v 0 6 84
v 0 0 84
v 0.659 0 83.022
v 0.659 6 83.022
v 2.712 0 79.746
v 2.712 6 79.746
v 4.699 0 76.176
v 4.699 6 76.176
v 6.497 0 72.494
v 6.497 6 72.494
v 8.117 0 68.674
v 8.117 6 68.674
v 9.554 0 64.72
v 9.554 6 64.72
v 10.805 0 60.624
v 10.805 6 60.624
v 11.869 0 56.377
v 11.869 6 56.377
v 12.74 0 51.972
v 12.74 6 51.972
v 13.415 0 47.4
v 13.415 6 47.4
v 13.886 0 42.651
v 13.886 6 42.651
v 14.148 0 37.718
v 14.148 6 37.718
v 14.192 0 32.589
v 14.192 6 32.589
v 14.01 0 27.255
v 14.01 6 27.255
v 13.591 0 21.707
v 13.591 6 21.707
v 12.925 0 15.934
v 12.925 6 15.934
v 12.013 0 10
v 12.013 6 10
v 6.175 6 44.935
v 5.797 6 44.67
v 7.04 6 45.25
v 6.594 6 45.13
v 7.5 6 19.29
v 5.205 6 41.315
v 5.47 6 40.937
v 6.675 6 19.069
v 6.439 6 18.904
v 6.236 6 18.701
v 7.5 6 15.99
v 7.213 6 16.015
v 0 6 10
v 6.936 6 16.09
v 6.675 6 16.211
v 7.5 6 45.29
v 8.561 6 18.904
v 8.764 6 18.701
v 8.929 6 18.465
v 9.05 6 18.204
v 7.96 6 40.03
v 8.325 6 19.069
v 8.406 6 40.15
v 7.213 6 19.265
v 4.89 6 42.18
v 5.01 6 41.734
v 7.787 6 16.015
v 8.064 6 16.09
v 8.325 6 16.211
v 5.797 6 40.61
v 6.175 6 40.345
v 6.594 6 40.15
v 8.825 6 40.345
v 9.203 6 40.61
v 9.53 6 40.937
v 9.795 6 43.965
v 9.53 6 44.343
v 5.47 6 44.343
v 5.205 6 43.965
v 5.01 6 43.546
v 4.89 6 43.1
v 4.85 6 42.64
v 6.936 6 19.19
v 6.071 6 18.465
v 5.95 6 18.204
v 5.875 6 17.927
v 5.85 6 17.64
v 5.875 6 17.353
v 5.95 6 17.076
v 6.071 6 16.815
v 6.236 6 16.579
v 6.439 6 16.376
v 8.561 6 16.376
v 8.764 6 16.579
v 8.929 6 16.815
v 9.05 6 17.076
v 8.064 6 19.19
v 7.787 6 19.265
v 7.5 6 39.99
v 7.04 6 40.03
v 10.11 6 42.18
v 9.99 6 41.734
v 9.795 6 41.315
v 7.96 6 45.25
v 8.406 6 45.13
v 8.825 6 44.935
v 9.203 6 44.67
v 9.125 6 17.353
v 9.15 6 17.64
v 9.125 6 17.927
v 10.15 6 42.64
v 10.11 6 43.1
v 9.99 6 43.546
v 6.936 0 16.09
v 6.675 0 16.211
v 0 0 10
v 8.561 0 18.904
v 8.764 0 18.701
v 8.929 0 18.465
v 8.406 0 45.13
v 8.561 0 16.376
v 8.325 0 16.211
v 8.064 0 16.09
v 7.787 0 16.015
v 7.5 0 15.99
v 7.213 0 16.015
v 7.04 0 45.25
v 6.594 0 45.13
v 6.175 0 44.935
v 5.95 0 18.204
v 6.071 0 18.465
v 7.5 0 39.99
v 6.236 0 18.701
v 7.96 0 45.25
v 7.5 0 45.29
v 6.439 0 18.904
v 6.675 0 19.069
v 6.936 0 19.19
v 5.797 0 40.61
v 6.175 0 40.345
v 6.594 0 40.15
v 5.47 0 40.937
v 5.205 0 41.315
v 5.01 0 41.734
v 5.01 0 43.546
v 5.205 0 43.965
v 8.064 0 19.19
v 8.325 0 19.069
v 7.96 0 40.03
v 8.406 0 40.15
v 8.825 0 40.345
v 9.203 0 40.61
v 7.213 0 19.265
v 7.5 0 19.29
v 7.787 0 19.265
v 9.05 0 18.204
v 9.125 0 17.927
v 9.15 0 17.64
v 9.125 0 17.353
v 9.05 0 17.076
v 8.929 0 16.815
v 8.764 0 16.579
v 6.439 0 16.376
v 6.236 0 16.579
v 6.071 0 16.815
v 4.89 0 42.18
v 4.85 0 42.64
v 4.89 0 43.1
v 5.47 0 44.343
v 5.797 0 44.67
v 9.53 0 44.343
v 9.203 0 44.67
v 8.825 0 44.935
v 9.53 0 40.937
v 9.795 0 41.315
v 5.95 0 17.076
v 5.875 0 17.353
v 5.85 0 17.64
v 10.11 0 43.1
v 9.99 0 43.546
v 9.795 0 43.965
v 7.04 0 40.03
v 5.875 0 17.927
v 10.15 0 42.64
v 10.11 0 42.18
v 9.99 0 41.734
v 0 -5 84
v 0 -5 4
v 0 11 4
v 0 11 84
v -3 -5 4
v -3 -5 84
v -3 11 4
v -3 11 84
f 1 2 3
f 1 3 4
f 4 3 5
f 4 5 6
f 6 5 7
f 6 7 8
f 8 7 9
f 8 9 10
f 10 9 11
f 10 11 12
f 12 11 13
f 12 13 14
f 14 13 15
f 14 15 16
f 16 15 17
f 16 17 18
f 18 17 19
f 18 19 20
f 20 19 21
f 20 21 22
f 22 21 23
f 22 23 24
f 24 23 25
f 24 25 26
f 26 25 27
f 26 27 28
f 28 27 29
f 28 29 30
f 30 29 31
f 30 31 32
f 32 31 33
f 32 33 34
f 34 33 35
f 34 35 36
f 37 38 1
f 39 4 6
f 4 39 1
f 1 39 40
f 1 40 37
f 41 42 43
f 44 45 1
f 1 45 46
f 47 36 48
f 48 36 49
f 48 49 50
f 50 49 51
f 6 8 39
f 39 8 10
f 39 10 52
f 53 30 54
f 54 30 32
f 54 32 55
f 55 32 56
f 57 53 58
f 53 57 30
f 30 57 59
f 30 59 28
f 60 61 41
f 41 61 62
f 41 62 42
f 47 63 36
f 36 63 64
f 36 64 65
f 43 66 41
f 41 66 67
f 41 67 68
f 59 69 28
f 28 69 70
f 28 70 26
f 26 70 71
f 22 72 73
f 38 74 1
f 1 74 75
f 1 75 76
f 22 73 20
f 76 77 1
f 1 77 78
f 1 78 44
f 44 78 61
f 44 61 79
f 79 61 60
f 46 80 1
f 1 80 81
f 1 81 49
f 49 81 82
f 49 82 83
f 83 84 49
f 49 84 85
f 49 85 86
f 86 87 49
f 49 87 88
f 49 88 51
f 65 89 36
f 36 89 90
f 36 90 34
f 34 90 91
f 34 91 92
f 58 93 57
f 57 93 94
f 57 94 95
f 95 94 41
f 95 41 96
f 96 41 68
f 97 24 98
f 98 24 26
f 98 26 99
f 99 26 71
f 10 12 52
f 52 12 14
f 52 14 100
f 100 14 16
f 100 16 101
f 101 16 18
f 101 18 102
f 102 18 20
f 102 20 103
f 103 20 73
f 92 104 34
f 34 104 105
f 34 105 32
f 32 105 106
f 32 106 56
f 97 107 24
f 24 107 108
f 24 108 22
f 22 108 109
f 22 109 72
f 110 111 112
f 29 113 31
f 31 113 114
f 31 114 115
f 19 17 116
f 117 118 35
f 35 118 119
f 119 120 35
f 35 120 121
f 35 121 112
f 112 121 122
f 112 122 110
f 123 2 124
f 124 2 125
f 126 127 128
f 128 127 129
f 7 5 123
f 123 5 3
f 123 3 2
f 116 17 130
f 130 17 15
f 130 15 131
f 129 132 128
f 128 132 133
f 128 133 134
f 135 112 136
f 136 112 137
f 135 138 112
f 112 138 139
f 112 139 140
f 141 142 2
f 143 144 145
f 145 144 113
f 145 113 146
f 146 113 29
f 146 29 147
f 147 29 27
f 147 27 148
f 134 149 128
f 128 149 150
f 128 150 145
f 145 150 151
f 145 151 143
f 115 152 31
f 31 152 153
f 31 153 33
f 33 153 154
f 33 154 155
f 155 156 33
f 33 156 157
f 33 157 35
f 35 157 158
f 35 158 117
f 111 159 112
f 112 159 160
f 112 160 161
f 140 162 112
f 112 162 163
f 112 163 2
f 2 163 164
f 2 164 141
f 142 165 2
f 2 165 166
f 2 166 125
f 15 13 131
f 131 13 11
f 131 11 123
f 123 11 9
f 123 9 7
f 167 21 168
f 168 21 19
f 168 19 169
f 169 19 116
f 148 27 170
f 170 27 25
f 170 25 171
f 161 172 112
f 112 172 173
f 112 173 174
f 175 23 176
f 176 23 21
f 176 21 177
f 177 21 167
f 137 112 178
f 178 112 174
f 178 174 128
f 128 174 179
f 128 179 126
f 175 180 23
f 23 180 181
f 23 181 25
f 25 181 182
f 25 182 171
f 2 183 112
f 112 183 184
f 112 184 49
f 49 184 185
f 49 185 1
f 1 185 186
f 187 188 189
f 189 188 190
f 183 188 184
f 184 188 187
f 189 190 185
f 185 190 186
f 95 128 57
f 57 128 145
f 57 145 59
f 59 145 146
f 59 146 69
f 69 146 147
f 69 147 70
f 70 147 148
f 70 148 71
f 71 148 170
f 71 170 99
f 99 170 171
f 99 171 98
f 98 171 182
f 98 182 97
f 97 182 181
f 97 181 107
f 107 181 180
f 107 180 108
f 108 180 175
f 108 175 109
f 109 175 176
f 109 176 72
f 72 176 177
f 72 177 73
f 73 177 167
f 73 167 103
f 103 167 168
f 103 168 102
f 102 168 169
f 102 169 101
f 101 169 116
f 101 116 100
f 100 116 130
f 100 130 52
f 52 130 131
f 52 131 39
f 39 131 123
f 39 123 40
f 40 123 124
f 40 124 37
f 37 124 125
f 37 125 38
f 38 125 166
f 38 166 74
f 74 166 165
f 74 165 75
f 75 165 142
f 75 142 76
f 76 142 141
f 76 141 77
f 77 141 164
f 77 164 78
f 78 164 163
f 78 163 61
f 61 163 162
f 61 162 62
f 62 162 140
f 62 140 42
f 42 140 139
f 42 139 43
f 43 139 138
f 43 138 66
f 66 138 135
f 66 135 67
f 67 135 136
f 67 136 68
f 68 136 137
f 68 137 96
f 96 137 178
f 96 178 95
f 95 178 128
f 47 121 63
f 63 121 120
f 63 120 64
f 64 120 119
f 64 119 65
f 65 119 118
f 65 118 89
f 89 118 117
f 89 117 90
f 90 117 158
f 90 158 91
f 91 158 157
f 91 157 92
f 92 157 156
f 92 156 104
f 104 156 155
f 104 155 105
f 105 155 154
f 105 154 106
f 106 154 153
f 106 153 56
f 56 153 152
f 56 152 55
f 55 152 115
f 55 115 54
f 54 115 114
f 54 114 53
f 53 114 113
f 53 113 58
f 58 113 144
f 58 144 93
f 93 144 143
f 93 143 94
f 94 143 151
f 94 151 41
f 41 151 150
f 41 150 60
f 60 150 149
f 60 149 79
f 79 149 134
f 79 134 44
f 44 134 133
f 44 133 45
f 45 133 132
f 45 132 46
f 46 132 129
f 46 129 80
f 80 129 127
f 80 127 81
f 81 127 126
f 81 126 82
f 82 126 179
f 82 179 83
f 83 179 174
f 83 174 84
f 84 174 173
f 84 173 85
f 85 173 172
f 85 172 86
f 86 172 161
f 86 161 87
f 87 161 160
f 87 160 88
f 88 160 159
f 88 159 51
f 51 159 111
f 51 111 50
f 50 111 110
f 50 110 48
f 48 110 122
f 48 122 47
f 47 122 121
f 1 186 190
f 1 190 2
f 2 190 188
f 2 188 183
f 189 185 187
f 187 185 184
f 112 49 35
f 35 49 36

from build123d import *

# Parameters (mm, degrees)
SKETCH1_R                = 2.65
SKETCH1_R_2              = 1.65
BOSS_EXTRUDE1_DEPTH      = 6
SKETCH2_W                = 3
SKETCH2_H                = 84
BOSS_EXTRUDE2_DEPTH      = 5
BOSS_EXTRUDE2_DEPTH_BACK = 11
SKETCH3_W                = 3.872725059
SKETCH3_H                = 4
CUT_EXTRUDE2_DEPTH       = 10
CUT_EXTRUDE2_DEPTH_BACK  = 20


with BuildPart() as part:
    # Sketch1 → Boss-Extrude1 (new body)
    with BuildSketch(Plane(origin=(0, 0, 0), x_dir=(1, 0, 0), z_dir=(0, 1, 0))):
        with BuildLine():
            Line((10, 0), (0, 0))
            Line((0, 0), (0, -84))
            add(Edge.make_bspline(
                [(10, 0), (21.928320777, -51.98362607), (0, -84)],
                knots=[0, 0, 0, 0.5770461, 0.5770461, 0.5770461], degree=2))
        make_face()
        with Locations((7.5, -42.64)):
            Circle(SKETCH1_R, mode=Mode.SUBTRACT)
        with Locations((7.5, -17.64)):
            Circle(SKETCH1_R_2, mode=Mode.SUBTRACT)
    extrude(amount=BOSS_EXTRUDE1_DEPTH)

    # Sketch2 → Boss-Extrude2 (add, two sides)
    with BuildSketch(Plane(origin=(0, 6, 0), x_dir=(1, 0, 0), z_dir=(0, 1, 0))) as boss_extrude2_sk:
        with Locations((-1.5, -42)):
            Rectangle(SKETCH2_W, SKETCH2_H)
    extrude(amount=BOSS_EXTRUDE2_DEPTH)
    extrude(boss_extrude2_sk.sketch, amount=-BOSS_EXTRUDE2_DEPTH_BACK)

    # Sketch3 → Cut-Extrude2 (cut, two sides)
    with BuildSketch(Plane(origin=(0, 6, 0), x_dir=(1, 0, 0), z_dir=(0, 1, 0))) as cut_extrude2_sk:
        Polygon((23.981174241, 0), (0, 0), (0, -4), (0, -10), (23.981174241, -10), align=None)
        with Locations((-1.93636253, -2)):
            Rectangle(SKETCH3_W, SKETCH3_H)
    extrude(amount=CUT_EXTRUDE2_DEPTH, mode=Mode.SUBTRACT)
    extrude(cut_extrude2_sk.sketch, amount=-CUT_EXTRUDE2_DEPTH_BACK, mode=Mode.SUBTRACT)


solid = part.part
